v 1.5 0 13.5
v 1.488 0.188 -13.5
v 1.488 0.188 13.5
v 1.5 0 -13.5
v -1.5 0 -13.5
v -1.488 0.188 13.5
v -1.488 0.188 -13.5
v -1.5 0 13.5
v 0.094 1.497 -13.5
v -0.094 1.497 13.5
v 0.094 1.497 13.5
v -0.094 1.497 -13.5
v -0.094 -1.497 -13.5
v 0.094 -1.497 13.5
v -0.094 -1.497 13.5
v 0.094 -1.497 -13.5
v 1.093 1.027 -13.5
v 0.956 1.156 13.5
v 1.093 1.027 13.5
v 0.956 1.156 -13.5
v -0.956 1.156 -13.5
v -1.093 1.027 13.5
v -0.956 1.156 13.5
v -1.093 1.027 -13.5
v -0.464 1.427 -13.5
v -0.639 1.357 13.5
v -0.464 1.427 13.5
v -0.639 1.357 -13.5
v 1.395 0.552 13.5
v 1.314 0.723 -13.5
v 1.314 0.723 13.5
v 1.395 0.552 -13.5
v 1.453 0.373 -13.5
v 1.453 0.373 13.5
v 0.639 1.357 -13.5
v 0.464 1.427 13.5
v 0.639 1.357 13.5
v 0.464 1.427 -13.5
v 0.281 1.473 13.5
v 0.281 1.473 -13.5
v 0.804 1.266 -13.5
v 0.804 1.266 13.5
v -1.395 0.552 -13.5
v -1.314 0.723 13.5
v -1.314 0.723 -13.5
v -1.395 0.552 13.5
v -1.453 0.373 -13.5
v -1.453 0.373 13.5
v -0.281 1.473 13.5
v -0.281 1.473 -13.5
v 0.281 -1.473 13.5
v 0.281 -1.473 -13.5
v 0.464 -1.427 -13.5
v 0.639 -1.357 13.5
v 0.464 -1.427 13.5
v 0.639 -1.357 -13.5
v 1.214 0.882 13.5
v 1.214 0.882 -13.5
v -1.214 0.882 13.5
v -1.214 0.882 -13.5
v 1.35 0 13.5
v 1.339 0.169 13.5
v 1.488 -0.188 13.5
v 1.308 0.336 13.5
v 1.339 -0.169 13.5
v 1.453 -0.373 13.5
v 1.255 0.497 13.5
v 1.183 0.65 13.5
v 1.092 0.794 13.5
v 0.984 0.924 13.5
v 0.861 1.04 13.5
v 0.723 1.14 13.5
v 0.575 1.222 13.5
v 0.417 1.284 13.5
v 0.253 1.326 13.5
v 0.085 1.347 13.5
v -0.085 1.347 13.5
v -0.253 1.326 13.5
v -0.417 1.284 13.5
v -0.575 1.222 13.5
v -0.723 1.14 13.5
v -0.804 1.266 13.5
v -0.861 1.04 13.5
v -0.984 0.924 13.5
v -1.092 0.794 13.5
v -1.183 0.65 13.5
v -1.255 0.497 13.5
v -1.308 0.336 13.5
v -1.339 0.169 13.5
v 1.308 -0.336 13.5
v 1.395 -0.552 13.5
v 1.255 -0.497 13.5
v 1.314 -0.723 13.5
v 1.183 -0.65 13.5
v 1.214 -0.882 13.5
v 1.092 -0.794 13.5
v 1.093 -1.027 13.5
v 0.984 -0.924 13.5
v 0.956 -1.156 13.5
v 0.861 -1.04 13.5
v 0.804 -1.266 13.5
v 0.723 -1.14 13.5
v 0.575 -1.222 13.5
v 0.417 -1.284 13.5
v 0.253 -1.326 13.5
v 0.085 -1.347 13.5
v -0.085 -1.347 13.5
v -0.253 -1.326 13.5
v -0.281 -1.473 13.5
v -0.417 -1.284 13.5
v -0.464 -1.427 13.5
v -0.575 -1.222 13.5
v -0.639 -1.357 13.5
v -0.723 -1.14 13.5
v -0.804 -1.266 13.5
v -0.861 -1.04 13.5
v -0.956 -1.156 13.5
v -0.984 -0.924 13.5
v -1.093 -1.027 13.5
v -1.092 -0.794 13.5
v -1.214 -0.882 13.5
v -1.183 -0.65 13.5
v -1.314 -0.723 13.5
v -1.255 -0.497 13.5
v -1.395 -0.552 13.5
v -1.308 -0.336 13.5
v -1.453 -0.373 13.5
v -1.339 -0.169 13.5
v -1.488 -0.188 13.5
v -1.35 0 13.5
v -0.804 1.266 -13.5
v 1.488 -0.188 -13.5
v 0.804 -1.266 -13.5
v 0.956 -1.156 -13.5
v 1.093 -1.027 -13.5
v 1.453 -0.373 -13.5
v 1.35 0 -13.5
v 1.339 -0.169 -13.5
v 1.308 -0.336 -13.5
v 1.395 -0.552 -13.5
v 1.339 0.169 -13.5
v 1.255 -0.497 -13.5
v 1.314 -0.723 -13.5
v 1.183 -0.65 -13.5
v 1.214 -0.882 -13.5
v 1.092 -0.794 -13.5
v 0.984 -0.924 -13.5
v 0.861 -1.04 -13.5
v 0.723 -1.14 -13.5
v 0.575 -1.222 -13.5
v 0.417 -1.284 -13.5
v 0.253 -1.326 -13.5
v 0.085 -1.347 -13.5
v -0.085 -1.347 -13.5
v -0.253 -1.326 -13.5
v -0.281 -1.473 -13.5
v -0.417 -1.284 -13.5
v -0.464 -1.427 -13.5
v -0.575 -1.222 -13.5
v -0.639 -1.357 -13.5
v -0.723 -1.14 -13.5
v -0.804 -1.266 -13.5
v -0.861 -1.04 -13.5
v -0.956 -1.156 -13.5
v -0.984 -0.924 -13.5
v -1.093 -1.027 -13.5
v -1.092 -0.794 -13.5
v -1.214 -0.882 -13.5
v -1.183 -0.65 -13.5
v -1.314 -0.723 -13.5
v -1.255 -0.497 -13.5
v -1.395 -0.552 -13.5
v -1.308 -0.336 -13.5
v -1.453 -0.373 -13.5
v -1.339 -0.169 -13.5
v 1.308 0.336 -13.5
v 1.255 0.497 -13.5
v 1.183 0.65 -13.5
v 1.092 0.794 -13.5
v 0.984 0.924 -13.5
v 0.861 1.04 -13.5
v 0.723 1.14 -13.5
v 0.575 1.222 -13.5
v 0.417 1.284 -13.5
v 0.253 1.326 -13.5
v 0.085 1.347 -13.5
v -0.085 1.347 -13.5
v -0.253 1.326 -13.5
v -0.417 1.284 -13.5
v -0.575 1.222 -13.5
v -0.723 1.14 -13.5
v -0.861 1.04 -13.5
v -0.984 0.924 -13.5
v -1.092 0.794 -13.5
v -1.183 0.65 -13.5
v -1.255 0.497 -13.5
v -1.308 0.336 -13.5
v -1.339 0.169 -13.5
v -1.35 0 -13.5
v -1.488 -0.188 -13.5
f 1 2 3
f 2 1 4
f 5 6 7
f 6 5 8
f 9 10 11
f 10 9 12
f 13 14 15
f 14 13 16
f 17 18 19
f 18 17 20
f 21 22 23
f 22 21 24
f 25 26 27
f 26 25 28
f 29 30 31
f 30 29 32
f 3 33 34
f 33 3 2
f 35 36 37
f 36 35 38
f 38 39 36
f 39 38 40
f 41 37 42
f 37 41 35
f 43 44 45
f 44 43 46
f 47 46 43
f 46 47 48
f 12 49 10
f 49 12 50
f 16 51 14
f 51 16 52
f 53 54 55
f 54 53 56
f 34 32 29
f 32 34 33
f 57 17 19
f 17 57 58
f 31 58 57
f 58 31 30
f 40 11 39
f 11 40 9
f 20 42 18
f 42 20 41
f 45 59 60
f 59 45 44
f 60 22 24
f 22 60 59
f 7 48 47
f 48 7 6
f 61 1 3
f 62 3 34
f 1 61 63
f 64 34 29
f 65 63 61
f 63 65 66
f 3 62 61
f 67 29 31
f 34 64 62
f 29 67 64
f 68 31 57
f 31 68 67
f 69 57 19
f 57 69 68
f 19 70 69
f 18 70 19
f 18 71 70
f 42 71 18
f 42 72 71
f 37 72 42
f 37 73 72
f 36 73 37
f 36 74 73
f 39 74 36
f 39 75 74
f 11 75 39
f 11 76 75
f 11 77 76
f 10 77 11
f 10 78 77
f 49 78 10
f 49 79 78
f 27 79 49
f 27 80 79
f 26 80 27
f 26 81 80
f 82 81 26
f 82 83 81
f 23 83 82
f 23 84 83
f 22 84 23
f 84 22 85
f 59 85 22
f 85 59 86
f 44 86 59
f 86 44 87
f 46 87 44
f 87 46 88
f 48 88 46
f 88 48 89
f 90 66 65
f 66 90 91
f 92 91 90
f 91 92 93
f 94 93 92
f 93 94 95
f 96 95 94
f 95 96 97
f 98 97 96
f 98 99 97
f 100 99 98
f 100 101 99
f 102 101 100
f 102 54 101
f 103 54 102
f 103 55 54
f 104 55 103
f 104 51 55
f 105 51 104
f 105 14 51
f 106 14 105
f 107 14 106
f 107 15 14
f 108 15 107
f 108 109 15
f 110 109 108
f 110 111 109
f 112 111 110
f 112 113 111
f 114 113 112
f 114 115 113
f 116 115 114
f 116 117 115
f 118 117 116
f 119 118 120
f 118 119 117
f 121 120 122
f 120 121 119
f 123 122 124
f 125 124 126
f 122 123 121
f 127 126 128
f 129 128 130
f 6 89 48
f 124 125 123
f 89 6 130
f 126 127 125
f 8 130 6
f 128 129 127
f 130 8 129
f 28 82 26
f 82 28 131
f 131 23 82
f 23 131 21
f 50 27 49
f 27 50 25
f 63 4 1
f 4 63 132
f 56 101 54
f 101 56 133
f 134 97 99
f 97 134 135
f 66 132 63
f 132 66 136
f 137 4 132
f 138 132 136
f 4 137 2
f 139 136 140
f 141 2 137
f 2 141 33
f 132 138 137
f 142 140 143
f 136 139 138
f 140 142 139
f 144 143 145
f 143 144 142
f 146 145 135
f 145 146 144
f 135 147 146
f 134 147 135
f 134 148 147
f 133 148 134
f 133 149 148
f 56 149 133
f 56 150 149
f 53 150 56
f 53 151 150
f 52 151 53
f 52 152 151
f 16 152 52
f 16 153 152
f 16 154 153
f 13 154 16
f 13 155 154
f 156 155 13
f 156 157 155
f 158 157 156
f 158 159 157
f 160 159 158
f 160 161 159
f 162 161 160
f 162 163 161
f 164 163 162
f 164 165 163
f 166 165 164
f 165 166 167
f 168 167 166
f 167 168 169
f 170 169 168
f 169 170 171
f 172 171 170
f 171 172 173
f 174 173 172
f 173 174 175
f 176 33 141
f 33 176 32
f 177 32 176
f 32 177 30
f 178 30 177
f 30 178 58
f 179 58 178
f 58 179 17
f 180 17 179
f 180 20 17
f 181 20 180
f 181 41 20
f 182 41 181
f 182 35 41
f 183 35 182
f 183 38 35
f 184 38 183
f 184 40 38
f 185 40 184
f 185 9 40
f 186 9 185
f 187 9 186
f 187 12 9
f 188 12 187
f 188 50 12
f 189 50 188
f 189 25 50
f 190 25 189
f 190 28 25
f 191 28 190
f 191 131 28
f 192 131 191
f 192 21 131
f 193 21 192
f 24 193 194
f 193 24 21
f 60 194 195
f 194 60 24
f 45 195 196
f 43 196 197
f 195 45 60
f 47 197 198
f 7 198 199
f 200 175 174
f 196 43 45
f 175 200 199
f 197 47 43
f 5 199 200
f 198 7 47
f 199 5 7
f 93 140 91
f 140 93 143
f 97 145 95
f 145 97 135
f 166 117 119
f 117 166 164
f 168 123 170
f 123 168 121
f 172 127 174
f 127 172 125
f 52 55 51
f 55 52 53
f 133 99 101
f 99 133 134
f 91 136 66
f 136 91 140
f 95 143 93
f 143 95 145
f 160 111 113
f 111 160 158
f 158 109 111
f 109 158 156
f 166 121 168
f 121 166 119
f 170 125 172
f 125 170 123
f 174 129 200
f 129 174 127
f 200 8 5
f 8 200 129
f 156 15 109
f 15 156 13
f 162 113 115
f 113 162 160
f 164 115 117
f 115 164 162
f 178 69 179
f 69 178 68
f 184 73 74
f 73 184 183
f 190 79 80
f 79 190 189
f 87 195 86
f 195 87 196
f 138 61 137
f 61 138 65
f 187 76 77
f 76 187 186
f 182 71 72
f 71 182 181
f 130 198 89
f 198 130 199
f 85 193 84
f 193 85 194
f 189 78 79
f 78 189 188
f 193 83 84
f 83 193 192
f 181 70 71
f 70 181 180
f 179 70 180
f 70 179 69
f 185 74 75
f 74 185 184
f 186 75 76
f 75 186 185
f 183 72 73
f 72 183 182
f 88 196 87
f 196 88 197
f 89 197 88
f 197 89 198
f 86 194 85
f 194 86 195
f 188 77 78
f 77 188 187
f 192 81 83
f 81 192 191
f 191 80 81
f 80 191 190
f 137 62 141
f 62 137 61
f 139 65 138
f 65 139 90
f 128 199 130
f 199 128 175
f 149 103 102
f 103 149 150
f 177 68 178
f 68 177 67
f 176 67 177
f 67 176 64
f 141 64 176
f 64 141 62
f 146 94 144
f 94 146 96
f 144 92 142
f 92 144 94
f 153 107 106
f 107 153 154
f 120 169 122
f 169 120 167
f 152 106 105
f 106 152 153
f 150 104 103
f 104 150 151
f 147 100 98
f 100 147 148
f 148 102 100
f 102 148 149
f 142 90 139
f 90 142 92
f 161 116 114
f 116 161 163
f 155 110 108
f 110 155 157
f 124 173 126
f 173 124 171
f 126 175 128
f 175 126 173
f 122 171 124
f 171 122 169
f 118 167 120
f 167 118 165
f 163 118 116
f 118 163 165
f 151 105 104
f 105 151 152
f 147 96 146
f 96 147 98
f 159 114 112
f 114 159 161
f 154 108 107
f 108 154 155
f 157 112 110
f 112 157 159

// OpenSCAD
$fn = 50;


difference() {
	union() {
		translate(v = [0, 0, -13.5000000000]) {
			cylinder(h = 27, r = 1.5000000000);
		}
	}
	union() {
		translate(v = [0, 0, -100.0000000000]) {
			cylinder(h = 200, r = 1.3500000000);
		}
	}
}
